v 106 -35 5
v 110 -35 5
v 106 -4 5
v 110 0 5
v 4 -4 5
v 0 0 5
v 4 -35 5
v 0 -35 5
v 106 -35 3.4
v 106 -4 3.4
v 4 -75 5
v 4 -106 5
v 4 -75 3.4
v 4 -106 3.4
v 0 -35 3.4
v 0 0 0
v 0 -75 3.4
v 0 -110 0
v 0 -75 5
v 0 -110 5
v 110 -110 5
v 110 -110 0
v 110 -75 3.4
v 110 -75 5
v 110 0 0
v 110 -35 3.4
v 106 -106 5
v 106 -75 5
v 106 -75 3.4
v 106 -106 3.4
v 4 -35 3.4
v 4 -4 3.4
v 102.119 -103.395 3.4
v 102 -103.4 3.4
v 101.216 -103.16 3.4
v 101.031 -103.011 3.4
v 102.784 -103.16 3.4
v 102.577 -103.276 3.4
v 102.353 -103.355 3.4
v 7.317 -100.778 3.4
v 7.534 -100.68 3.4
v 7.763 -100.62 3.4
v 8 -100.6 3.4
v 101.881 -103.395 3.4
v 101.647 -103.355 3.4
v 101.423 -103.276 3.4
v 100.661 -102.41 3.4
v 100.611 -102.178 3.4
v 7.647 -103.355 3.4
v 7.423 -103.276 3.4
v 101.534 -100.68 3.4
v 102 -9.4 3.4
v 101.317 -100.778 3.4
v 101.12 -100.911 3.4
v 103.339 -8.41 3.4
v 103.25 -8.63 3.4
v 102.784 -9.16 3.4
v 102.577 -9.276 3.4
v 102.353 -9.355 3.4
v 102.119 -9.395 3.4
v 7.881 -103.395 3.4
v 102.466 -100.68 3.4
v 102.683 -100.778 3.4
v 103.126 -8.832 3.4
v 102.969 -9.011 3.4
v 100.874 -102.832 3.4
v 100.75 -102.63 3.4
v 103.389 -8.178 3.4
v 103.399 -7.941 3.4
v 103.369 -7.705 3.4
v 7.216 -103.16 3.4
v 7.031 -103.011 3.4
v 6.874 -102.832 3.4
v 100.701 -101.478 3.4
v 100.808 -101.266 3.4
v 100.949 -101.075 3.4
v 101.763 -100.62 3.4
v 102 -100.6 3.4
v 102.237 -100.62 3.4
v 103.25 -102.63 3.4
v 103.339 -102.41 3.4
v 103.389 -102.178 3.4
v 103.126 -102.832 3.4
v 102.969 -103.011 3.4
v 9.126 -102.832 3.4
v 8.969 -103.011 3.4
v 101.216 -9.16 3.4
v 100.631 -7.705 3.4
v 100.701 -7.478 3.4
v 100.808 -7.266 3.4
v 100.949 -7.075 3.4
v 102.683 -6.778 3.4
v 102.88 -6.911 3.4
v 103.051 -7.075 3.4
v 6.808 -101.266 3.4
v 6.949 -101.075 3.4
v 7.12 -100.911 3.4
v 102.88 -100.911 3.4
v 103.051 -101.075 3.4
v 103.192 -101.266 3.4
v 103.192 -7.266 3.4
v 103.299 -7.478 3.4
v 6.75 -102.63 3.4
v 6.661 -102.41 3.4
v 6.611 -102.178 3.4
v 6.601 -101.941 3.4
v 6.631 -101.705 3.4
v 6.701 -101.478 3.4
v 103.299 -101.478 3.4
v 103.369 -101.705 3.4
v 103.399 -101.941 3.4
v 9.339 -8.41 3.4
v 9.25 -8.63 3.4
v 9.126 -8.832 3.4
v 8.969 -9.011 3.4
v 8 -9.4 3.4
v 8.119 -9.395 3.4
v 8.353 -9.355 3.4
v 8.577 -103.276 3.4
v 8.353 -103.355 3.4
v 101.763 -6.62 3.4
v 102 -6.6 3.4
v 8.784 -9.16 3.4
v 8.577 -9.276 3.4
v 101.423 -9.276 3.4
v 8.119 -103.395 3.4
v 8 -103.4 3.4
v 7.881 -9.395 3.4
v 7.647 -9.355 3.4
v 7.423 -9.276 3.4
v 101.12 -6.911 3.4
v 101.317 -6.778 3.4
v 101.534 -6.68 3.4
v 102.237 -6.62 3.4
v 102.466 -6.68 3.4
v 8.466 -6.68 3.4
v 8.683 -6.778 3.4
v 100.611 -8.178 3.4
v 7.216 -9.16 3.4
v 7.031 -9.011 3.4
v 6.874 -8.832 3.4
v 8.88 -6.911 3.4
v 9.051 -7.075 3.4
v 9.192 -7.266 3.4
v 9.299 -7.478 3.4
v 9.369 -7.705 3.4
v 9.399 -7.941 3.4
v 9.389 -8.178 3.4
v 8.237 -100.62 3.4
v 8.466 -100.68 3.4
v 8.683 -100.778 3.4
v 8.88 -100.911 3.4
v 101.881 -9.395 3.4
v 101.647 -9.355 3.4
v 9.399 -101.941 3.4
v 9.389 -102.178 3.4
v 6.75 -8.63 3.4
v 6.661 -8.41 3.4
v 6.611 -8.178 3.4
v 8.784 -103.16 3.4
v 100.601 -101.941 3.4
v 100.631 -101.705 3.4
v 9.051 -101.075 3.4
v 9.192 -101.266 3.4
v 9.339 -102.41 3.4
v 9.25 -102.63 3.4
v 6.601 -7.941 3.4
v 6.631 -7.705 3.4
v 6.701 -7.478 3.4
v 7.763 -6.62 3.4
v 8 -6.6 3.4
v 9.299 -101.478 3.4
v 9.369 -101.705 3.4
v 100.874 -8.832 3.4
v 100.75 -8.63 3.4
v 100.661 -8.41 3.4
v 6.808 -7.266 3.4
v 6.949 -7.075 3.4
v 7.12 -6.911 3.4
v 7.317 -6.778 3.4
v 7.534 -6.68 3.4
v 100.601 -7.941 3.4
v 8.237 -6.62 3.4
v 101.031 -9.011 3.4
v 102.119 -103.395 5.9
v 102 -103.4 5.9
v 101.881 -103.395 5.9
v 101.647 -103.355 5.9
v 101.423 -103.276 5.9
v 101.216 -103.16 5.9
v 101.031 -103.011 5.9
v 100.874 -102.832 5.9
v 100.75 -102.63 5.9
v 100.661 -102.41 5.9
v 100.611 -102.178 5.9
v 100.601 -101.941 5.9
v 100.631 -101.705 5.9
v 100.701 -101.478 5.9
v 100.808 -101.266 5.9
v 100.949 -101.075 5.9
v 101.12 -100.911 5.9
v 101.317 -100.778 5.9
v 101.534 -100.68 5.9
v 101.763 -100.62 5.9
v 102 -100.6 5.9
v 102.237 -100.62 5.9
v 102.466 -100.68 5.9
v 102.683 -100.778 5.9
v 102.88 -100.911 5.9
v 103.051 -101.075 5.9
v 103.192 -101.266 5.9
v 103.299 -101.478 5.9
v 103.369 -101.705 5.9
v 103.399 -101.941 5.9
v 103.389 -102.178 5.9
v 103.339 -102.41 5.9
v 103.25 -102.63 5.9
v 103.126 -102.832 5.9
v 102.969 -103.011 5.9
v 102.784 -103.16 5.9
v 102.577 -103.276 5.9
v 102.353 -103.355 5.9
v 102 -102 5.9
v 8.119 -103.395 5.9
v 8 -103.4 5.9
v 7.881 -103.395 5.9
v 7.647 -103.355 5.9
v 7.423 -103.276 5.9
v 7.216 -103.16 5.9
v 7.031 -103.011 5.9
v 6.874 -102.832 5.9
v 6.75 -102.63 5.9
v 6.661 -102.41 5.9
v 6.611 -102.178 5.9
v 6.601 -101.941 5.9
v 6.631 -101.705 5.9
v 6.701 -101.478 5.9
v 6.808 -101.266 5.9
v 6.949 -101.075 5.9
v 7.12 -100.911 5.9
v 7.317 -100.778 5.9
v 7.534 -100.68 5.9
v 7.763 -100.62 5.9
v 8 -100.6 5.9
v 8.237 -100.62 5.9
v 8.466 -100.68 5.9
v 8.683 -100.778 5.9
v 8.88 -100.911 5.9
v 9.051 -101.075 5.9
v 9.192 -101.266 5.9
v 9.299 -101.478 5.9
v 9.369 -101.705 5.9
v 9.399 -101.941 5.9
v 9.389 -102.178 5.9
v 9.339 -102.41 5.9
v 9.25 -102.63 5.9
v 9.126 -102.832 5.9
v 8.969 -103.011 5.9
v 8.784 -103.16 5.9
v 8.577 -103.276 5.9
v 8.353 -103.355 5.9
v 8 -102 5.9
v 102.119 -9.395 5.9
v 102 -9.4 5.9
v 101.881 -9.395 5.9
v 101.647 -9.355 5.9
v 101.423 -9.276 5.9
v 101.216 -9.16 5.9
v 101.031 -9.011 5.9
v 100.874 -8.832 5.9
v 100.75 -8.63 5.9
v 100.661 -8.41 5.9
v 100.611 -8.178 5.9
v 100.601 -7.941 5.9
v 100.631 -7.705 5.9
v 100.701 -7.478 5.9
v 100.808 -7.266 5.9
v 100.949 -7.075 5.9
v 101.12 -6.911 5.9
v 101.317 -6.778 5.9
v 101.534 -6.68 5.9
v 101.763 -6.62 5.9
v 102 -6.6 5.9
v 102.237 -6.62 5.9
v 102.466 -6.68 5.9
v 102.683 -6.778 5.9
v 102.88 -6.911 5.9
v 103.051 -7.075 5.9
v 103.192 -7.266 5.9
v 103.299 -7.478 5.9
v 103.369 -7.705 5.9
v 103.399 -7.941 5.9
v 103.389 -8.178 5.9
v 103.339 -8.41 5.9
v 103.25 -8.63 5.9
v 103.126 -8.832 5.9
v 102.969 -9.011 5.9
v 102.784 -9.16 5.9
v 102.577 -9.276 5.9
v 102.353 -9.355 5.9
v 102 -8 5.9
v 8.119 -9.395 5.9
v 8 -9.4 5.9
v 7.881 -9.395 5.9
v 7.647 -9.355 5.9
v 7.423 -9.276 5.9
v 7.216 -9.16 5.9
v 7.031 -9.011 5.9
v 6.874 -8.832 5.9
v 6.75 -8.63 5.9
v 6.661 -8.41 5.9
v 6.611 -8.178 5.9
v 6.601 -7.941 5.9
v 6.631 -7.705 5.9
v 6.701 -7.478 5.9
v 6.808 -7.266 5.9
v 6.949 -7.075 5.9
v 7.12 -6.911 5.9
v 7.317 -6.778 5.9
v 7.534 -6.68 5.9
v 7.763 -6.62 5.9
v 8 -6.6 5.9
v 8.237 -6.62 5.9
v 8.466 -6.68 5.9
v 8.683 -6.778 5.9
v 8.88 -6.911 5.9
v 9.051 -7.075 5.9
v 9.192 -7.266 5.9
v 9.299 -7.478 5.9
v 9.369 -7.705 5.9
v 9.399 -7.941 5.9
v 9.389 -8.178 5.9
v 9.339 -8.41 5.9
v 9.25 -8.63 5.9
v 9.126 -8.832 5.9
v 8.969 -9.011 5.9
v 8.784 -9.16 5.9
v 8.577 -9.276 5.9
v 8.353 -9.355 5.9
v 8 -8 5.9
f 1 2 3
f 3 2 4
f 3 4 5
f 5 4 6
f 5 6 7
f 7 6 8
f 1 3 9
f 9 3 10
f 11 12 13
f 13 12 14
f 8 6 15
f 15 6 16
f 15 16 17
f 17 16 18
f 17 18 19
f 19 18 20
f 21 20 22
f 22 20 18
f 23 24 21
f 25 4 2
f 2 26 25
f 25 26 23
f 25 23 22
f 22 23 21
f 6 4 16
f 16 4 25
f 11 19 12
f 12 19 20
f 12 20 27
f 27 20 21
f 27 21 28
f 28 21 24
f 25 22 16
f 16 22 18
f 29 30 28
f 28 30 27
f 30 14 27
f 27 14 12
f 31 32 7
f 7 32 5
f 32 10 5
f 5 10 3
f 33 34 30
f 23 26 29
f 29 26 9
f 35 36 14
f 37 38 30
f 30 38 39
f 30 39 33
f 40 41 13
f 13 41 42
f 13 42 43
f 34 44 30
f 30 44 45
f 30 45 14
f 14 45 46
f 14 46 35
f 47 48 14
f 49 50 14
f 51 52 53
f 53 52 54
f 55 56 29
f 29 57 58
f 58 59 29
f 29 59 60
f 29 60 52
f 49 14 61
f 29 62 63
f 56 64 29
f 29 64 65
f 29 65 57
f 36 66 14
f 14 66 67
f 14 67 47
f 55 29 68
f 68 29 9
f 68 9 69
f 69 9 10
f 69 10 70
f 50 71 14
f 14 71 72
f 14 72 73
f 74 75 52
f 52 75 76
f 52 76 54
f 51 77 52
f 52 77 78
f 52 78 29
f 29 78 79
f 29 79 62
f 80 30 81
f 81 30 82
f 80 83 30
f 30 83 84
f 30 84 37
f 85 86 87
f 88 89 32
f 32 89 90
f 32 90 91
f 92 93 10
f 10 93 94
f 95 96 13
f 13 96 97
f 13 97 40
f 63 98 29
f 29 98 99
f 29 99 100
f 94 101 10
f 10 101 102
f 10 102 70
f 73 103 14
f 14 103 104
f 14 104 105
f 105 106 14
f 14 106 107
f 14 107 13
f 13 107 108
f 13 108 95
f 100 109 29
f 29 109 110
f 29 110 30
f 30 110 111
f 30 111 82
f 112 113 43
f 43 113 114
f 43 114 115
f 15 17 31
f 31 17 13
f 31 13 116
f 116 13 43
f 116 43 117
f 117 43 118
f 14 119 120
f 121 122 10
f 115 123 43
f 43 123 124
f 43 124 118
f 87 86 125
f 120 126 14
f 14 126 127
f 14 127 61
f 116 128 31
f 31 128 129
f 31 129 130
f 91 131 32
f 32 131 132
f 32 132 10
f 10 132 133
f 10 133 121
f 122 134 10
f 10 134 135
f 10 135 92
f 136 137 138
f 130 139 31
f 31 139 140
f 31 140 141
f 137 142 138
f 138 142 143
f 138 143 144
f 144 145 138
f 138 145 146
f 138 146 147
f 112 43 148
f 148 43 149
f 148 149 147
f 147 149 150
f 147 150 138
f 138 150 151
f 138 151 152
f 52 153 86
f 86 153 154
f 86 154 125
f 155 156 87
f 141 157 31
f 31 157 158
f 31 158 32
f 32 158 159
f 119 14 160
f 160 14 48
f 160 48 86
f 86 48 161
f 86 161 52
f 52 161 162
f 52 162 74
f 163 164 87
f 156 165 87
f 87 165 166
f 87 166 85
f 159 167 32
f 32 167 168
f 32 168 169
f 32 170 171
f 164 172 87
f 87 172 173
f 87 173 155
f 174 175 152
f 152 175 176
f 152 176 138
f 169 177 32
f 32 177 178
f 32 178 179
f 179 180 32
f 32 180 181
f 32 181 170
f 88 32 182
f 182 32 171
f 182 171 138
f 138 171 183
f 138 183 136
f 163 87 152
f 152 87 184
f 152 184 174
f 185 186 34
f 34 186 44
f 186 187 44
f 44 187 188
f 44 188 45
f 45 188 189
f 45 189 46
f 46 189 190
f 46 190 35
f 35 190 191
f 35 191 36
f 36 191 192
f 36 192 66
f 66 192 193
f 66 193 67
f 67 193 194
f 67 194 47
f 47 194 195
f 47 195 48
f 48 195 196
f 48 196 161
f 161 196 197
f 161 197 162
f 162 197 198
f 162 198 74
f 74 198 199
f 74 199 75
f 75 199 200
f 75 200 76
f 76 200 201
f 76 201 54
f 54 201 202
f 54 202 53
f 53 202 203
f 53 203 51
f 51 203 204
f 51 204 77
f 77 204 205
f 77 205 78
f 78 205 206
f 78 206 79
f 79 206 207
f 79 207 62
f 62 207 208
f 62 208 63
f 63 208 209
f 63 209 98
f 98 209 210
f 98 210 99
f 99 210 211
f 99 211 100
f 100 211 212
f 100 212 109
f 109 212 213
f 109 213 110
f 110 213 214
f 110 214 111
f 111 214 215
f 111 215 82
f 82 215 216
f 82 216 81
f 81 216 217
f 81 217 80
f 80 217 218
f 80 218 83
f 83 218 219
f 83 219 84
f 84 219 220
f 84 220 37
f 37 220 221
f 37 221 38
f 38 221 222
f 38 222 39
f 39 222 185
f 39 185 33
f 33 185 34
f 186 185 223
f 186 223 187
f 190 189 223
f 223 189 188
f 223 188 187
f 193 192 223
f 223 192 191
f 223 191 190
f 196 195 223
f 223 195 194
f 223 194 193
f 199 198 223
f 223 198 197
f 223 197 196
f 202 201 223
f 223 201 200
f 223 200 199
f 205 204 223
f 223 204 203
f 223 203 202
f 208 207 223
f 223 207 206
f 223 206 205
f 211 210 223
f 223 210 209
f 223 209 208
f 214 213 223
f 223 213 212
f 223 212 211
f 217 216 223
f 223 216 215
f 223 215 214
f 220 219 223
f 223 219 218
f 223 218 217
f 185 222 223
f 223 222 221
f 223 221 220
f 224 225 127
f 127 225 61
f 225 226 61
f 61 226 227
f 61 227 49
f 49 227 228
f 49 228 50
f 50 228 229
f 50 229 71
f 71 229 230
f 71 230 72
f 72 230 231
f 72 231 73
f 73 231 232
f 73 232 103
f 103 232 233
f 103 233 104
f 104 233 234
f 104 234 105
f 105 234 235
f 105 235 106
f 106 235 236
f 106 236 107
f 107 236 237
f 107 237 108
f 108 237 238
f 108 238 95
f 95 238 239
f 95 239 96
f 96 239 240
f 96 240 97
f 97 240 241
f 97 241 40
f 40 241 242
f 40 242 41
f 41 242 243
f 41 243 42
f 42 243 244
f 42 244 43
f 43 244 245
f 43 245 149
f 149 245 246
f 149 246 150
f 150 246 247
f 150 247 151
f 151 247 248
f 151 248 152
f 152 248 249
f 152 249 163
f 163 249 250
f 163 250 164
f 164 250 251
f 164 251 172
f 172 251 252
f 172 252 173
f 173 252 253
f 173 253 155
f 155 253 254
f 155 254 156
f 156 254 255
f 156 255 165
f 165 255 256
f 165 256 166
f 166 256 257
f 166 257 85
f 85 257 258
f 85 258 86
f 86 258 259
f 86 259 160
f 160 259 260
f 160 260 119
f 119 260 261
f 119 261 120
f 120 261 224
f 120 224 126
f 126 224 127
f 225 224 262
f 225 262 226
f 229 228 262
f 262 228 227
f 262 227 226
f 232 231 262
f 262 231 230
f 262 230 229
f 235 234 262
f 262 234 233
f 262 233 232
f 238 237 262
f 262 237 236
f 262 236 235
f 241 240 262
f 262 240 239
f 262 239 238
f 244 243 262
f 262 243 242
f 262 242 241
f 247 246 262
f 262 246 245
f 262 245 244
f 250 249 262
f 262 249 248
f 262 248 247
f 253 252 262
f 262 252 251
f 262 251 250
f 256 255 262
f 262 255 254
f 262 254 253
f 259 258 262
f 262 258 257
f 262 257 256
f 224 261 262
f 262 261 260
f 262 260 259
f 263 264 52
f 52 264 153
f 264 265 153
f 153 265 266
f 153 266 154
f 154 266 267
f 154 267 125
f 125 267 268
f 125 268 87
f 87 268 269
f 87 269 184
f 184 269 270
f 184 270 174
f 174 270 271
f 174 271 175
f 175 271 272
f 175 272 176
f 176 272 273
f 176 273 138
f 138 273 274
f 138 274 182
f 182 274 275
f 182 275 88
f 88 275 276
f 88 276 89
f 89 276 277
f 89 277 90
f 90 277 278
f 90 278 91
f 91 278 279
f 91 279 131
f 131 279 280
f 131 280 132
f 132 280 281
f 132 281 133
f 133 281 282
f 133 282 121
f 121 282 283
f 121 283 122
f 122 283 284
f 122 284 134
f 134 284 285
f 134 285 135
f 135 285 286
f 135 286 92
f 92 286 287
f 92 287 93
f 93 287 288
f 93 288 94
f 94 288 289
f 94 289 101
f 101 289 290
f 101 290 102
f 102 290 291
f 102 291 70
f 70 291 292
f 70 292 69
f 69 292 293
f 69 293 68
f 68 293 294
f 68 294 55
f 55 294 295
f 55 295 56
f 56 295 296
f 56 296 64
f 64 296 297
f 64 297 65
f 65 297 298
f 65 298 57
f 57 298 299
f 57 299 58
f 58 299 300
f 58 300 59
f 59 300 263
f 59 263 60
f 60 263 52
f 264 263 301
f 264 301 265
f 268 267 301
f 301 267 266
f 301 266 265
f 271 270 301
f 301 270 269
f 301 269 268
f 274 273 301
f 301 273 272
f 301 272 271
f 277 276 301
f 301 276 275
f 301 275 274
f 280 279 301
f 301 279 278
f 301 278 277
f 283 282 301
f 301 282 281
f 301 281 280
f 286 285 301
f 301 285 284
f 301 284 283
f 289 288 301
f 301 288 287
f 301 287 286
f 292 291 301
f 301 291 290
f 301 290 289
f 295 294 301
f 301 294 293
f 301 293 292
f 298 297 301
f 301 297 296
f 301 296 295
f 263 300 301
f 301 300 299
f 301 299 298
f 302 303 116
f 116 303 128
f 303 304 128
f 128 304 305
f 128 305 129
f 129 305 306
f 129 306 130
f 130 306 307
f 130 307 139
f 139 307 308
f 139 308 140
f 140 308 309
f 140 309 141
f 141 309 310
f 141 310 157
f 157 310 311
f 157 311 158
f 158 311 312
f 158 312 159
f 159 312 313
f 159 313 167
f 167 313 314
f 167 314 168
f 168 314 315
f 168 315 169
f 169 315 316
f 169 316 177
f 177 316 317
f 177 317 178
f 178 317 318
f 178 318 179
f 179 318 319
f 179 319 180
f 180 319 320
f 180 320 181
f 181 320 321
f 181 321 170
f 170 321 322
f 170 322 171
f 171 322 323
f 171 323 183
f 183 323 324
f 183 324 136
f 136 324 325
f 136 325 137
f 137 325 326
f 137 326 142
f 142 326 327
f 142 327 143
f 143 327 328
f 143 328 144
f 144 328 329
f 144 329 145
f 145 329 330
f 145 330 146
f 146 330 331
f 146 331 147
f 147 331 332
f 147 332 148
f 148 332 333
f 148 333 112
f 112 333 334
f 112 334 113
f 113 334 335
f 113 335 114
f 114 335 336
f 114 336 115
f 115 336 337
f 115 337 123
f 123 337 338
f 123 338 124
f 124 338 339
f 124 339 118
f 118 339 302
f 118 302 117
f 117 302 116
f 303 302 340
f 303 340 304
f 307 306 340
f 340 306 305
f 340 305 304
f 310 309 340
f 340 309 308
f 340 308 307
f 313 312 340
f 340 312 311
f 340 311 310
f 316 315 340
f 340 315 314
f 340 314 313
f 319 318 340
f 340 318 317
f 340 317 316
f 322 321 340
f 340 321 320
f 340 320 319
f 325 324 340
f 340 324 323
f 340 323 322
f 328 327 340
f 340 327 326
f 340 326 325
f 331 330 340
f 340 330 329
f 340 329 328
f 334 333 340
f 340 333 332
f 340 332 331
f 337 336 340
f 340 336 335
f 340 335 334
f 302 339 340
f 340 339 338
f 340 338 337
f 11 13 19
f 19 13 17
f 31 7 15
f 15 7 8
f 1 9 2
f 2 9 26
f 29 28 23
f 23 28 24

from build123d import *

# Parameters (mm, degrees)
SKETCH1_W           = 110
SKETCH1_H           = 110
BOSS_EXTRUDE1_DEPTH = 5
SKETCH3_W           = 102
SKETCH3_H           = 102
CUT_EXTRUDE1_DEPTH  = 1.6
SKETCH4_R           = 1.4
BOSS_EXTRUDE3_DEPTH = 2.5
SKETCH11_W          = 5
SKETCH11_H          = 40
CUT_EXTRUDE3_DEPTH  = 1.6


with BuildPart() as part:
    # Sketch1 → Boss-Extrude1 (new body)
    with BuildSketch(Plane(origin=(0, 0, 0), x_dir=(1, 0, 0), z_dir=(0, 0, -1))):
        with Locations((55, 55)):
            Rectangle(SKETCH1_W, SKETCH1_H)
    extrude(amount=-BOSS_EXTRUDE1_DEPTH)

    # Sketch3 → Cut-Extrude1 (cut)
    with BuildSketch(Plane(origin=(0, 0, 5), x_dir=(-1, 0, 0), z_dir=(0, 0, 1))):
        with Locations((-55, 55)):
            Rectangle(SKETCH3_W, SKETCH3_H)
    extrude(amount=-CUT_EXTRUDE1_DEPTH, mode=Mode.SUBTRACT)

    # Sketch4 → Boss-Extrude3 (add)
    with BuildSketch(Plane(origin=(0, 0, 3.4), x_dir=(-1, 0, 0), z_dir=(0, 0, 1))):
        with Locations((-102, 102)):
            Circle(SKETCH4_R)
        with Locations((-8, 102)):
            Circle(SKETCH4_R)
        with Locations((-102, 8)):
            Circle(SKETCH4_R)
        with Locations((-8, 8)):
            Circle(SKETCH4_R)
    extrude(amount=BOSS_EXTRUDE3_DEPTH)

    # Sketch11 → Cut-Extrude3 (cut)
    with BuildSketch(Plane(origin=(0, 0, 5), x_dir=(-1, 0, 0), z_dir=(0, 0, 1))):
        with Locations((-108.5, 55)):
            Rectangle(SKETCH11_W, SKETCH11_H)
        with Locations((-1.5, 55)):
            Rectangle(SKETCH11_W, SKETCH11_H)
    extrude(amount=-CUT_EXTRUDE3_DEPTH, mode=Mode.SUBTRACT)


solid = part.part
